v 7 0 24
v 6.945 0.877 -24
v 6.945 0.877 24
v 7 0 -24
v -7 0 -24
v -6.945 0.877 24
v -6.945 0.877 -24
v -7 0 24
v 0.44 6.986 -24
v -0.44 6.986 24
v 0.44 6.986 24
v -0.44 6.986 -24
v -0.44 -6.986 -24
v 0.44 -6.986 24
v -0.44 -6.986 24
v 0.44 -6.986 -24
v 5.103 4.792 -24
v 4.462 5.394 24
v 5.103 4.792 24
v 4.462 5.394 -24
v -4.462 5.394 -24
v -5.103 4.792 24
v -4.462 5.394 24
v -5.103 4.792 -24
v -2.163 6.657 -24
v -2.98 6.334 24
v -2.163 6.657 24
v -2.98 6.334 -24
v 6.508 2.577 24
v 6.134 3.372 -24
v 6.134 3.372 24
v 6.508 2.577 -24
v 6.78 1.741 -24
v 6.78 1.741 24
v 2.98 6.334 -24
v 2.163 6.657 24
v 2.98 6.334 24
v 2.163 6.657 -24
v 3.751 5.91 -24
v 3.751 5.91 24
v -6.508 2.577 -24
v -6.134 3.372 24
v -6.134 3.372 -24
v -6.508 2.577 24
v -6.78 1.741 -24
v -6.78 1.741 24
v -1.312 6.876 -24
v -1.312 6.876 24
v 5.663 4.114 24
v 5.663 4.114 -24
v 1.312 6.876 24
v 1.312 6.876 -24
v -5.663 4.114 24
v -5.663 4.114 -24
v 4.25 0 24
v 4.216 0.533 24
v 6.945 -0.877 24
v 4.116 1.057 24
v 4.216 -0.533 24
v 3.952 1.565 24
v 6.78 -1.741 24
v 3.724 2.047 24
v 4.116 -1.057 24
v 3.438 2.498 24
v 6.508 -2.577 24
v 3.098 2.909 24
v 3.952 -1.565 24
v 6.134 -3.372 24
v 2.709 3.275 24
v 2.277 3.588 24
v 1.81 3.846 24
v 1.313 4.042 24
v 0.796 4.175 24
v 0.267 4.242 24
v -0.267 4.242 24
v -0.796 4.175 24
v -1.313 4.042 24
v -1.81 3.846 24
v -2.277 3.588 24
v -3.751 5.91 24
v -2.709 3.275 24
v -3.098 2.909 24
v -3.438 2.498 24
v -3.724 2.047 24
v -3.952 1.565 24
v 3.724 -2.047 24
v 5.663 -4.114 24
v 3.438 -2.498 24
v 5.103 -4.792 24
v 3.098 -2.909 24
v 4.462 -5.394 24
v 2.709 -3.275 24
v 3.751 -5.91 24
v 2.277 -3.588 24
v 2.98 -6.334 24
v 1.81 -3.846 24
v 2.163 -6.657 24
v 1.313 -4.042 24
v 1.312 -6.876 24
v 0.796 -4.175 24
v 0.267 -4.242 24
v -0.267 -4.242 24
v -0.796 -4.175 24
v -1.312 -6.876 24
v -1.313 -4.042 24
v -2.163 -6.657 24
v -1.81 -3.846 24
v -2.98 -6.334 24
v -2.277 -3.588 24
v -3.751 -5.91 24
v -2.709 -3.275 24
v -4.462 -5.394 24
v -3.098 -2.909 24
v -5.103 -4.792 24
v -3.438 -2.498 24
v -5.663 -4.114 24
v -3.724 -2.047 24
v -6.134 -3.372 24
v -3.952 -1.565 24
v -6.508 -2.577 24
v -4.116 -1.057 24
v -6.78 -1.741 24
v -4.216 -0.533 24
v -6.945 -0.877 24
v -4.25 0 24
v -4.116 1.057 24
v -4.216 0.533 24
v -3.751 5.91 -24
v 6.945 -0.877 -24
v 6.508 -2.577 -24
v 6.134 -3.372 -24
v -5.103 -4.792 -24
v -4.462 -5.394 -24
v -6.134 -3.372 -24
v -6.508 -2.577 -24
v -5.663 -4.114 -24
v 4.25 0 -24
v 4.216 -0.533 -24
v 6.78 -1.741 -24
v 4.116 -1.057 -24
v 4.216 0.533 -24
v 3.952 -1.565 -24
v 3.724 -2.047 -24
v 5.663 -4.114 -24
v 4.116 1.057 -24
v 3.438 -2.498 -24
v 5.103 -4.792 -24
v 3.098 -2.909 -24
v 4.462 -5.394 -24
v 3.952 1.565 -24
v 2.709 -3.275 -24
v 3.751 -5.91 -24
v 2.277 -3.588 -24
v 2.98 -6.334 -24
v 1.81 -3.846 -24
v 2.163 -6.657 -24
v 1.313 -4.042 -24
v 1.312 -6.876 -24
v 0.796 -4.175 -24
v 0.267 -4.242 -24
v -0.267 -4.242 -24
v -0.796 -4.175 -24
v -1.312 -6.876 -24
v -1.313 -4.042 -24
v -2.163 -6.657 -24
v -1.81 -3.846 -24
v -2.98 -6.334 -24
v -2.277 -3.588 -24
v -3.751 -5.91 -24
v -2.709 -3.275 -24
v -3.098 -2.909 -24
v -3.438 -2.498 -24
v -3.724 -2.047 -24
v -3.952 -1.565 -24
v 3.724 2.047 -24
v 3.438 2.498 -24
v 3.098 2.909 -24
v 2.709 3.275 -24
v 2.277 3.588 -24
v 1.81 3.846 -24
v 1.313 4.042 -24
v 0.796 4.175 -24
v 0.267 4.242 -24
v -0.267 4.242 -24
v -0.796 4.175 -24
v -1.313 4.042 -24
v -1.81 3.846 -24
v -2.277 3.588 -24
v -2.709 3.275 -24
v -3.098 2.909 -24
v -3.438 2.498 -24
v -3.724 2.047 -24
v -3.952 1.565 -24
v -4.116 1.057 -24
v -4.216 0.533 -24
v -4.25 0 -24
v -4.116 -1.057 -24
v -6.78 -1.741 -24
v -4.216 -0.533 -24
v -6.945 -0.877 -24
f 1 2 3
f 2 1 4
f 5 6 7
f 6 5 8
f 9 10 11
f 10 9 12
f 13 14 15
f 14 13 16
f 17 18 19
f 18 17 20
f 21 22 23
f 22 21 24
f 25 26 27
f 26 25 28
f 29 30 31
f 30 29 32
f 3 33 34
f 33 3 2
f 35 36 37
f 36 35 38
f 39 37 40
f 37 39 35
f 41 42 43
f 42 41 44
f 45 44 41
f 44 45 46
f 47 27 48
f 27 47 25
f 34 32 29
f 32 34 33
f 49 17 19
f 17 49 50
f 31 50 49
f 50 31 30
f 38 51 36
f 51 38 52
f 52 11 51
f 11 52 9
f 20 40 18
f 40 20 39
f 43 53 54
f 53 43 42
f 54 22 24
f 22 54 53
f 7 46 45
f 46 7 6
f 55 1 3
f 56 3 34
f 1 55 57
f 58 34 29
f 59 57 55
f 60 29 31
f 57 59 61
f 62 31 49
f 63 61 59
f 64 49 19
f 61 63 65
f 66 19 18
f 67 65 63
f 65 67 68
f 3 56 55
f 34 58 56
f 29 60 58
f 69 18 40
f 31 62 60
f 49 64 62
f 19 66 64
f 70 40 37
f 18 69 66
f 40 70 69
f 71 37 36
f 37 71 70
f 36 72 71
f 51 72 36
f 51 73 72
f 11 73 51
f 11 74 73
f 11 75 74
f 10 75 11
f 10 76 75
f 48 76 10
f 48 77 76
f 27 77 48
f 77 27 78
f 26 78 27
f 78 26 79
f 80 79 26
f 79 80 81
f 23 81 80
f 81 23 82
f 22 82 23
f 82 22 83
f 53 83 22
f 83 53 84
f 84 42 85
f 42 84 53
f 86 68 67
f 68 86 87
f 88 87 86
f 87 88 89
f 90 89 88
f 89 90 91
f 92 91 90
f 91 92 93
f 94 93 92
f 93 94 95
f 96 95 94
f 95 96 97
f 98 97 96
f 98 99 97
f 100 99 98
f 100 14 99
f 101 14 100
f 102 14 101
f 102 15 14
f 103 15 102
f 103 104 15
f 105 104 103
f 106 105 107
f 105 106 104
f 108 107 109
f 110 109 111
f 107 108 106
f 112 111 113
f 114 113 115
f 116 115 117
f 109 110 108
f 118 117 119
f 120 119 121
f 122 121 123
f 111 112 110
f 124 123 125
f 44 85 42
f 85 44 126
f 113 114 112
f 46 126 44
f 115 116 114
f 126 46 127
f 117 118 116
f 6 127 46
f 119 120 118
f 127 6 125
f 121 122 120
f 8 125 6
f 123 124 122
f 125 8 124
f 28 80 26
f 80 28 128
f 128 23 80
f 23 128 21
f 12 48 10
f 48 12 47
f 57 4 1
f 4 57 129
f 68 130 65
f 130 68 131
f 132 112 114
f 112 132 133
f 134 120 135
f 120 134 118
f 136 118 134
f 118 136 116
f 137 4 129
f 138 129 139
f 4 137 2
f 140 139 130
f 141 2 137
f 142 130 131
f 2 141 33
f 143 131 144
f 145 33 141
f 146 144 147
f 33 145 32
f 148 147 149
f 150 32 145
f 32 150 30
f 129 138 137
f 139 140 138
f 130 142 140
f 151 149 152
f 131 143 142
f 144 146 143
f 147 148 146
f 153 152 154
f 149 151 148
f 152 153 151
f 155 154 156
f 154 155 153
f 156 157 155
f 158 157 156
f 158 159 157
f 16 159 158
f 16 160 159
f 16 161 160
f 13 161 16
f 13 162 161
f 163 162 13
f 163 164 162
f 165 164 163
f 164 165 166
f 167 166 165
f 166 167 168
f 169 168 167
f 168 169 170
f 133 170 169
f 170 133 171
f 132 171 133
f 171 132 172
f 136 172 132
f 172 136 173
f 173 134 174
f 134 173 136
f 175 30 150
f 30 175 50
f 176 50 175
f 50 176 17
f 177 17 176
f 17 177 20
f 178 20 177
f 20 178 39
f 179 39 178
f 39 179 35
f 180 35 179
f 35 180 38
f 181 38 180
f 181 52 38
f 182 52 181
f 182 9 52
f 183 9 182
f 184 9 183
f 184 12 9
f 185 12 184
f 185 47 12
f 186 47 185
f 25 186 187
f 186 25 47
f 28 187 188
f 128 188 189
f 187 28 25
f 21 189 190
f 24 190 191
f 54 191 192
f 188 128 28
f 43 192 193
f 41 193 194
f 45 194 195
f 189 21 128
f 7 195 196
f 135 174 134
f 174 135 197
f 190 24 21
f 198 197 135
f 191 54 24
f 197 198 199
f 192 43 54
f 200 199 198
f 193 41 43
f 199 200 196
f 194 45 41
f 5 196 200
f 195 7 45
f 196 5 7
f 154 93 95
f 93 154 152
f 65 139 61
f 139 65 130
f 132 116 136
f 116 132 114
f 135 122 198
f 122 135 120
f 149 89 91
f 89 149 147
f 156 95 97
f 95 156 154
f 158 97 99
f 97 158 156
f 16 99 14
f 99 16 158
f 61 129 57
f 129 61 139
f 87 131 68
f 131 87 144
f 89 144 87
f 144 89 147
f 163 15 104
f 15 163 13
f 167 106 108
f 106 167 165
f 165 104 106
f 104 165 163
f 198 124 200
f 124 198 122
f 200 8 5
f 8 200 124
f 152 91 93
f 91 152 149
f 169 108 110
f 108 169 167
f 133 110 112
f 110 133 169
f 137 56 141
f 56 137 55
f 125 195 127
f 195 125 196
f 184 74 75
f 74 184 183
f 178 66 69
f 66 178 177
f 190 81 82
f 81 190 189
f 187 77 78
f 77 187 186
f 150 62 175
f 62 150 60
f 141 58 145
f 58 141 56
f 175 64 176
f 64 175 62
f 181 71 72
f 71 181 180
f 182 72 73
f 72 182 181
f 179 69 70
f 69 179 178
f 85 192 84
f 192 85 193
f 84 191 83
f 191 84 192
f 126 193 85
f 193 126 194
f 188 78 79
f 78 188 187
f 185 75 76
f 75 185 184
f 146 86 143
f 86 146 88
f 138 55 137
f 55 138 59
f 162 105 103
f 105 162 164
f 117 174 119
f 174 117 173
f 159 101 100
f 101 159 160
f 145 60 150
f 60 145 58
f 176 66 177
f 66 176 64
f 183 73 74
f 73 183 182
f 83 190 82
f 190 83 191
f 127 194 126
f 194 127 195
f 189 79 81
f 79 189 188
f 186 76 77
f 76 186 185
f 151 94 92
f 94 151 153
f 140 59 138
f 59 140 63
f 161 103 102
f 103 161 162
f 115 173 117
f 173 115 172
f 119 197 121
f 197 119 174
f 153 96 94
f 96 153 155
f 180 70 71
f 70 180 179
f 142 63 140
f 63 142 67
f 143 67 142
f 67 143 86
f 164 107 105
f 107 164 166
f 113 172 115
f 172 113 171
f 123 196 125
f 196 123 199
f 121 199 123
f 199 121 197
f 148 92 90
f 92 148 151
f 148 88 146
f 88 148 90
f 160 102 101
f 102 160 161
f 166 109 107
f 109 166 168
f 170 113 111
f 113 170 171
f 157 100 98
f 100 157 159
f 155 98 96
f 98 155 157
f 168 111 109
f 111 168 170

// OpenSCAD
$fn = 50;


difference() {
	union() {
		translate(v = [0, 0, -24.0000000000]) {
			cylinder(h = 48, r = 7.0000000000);
		}
	}
	union() {
		translate(v = [0, 0, -100.0000000000]) {
			cylinder(h = 200, r = 4.2500000000);
		}
	}
}
